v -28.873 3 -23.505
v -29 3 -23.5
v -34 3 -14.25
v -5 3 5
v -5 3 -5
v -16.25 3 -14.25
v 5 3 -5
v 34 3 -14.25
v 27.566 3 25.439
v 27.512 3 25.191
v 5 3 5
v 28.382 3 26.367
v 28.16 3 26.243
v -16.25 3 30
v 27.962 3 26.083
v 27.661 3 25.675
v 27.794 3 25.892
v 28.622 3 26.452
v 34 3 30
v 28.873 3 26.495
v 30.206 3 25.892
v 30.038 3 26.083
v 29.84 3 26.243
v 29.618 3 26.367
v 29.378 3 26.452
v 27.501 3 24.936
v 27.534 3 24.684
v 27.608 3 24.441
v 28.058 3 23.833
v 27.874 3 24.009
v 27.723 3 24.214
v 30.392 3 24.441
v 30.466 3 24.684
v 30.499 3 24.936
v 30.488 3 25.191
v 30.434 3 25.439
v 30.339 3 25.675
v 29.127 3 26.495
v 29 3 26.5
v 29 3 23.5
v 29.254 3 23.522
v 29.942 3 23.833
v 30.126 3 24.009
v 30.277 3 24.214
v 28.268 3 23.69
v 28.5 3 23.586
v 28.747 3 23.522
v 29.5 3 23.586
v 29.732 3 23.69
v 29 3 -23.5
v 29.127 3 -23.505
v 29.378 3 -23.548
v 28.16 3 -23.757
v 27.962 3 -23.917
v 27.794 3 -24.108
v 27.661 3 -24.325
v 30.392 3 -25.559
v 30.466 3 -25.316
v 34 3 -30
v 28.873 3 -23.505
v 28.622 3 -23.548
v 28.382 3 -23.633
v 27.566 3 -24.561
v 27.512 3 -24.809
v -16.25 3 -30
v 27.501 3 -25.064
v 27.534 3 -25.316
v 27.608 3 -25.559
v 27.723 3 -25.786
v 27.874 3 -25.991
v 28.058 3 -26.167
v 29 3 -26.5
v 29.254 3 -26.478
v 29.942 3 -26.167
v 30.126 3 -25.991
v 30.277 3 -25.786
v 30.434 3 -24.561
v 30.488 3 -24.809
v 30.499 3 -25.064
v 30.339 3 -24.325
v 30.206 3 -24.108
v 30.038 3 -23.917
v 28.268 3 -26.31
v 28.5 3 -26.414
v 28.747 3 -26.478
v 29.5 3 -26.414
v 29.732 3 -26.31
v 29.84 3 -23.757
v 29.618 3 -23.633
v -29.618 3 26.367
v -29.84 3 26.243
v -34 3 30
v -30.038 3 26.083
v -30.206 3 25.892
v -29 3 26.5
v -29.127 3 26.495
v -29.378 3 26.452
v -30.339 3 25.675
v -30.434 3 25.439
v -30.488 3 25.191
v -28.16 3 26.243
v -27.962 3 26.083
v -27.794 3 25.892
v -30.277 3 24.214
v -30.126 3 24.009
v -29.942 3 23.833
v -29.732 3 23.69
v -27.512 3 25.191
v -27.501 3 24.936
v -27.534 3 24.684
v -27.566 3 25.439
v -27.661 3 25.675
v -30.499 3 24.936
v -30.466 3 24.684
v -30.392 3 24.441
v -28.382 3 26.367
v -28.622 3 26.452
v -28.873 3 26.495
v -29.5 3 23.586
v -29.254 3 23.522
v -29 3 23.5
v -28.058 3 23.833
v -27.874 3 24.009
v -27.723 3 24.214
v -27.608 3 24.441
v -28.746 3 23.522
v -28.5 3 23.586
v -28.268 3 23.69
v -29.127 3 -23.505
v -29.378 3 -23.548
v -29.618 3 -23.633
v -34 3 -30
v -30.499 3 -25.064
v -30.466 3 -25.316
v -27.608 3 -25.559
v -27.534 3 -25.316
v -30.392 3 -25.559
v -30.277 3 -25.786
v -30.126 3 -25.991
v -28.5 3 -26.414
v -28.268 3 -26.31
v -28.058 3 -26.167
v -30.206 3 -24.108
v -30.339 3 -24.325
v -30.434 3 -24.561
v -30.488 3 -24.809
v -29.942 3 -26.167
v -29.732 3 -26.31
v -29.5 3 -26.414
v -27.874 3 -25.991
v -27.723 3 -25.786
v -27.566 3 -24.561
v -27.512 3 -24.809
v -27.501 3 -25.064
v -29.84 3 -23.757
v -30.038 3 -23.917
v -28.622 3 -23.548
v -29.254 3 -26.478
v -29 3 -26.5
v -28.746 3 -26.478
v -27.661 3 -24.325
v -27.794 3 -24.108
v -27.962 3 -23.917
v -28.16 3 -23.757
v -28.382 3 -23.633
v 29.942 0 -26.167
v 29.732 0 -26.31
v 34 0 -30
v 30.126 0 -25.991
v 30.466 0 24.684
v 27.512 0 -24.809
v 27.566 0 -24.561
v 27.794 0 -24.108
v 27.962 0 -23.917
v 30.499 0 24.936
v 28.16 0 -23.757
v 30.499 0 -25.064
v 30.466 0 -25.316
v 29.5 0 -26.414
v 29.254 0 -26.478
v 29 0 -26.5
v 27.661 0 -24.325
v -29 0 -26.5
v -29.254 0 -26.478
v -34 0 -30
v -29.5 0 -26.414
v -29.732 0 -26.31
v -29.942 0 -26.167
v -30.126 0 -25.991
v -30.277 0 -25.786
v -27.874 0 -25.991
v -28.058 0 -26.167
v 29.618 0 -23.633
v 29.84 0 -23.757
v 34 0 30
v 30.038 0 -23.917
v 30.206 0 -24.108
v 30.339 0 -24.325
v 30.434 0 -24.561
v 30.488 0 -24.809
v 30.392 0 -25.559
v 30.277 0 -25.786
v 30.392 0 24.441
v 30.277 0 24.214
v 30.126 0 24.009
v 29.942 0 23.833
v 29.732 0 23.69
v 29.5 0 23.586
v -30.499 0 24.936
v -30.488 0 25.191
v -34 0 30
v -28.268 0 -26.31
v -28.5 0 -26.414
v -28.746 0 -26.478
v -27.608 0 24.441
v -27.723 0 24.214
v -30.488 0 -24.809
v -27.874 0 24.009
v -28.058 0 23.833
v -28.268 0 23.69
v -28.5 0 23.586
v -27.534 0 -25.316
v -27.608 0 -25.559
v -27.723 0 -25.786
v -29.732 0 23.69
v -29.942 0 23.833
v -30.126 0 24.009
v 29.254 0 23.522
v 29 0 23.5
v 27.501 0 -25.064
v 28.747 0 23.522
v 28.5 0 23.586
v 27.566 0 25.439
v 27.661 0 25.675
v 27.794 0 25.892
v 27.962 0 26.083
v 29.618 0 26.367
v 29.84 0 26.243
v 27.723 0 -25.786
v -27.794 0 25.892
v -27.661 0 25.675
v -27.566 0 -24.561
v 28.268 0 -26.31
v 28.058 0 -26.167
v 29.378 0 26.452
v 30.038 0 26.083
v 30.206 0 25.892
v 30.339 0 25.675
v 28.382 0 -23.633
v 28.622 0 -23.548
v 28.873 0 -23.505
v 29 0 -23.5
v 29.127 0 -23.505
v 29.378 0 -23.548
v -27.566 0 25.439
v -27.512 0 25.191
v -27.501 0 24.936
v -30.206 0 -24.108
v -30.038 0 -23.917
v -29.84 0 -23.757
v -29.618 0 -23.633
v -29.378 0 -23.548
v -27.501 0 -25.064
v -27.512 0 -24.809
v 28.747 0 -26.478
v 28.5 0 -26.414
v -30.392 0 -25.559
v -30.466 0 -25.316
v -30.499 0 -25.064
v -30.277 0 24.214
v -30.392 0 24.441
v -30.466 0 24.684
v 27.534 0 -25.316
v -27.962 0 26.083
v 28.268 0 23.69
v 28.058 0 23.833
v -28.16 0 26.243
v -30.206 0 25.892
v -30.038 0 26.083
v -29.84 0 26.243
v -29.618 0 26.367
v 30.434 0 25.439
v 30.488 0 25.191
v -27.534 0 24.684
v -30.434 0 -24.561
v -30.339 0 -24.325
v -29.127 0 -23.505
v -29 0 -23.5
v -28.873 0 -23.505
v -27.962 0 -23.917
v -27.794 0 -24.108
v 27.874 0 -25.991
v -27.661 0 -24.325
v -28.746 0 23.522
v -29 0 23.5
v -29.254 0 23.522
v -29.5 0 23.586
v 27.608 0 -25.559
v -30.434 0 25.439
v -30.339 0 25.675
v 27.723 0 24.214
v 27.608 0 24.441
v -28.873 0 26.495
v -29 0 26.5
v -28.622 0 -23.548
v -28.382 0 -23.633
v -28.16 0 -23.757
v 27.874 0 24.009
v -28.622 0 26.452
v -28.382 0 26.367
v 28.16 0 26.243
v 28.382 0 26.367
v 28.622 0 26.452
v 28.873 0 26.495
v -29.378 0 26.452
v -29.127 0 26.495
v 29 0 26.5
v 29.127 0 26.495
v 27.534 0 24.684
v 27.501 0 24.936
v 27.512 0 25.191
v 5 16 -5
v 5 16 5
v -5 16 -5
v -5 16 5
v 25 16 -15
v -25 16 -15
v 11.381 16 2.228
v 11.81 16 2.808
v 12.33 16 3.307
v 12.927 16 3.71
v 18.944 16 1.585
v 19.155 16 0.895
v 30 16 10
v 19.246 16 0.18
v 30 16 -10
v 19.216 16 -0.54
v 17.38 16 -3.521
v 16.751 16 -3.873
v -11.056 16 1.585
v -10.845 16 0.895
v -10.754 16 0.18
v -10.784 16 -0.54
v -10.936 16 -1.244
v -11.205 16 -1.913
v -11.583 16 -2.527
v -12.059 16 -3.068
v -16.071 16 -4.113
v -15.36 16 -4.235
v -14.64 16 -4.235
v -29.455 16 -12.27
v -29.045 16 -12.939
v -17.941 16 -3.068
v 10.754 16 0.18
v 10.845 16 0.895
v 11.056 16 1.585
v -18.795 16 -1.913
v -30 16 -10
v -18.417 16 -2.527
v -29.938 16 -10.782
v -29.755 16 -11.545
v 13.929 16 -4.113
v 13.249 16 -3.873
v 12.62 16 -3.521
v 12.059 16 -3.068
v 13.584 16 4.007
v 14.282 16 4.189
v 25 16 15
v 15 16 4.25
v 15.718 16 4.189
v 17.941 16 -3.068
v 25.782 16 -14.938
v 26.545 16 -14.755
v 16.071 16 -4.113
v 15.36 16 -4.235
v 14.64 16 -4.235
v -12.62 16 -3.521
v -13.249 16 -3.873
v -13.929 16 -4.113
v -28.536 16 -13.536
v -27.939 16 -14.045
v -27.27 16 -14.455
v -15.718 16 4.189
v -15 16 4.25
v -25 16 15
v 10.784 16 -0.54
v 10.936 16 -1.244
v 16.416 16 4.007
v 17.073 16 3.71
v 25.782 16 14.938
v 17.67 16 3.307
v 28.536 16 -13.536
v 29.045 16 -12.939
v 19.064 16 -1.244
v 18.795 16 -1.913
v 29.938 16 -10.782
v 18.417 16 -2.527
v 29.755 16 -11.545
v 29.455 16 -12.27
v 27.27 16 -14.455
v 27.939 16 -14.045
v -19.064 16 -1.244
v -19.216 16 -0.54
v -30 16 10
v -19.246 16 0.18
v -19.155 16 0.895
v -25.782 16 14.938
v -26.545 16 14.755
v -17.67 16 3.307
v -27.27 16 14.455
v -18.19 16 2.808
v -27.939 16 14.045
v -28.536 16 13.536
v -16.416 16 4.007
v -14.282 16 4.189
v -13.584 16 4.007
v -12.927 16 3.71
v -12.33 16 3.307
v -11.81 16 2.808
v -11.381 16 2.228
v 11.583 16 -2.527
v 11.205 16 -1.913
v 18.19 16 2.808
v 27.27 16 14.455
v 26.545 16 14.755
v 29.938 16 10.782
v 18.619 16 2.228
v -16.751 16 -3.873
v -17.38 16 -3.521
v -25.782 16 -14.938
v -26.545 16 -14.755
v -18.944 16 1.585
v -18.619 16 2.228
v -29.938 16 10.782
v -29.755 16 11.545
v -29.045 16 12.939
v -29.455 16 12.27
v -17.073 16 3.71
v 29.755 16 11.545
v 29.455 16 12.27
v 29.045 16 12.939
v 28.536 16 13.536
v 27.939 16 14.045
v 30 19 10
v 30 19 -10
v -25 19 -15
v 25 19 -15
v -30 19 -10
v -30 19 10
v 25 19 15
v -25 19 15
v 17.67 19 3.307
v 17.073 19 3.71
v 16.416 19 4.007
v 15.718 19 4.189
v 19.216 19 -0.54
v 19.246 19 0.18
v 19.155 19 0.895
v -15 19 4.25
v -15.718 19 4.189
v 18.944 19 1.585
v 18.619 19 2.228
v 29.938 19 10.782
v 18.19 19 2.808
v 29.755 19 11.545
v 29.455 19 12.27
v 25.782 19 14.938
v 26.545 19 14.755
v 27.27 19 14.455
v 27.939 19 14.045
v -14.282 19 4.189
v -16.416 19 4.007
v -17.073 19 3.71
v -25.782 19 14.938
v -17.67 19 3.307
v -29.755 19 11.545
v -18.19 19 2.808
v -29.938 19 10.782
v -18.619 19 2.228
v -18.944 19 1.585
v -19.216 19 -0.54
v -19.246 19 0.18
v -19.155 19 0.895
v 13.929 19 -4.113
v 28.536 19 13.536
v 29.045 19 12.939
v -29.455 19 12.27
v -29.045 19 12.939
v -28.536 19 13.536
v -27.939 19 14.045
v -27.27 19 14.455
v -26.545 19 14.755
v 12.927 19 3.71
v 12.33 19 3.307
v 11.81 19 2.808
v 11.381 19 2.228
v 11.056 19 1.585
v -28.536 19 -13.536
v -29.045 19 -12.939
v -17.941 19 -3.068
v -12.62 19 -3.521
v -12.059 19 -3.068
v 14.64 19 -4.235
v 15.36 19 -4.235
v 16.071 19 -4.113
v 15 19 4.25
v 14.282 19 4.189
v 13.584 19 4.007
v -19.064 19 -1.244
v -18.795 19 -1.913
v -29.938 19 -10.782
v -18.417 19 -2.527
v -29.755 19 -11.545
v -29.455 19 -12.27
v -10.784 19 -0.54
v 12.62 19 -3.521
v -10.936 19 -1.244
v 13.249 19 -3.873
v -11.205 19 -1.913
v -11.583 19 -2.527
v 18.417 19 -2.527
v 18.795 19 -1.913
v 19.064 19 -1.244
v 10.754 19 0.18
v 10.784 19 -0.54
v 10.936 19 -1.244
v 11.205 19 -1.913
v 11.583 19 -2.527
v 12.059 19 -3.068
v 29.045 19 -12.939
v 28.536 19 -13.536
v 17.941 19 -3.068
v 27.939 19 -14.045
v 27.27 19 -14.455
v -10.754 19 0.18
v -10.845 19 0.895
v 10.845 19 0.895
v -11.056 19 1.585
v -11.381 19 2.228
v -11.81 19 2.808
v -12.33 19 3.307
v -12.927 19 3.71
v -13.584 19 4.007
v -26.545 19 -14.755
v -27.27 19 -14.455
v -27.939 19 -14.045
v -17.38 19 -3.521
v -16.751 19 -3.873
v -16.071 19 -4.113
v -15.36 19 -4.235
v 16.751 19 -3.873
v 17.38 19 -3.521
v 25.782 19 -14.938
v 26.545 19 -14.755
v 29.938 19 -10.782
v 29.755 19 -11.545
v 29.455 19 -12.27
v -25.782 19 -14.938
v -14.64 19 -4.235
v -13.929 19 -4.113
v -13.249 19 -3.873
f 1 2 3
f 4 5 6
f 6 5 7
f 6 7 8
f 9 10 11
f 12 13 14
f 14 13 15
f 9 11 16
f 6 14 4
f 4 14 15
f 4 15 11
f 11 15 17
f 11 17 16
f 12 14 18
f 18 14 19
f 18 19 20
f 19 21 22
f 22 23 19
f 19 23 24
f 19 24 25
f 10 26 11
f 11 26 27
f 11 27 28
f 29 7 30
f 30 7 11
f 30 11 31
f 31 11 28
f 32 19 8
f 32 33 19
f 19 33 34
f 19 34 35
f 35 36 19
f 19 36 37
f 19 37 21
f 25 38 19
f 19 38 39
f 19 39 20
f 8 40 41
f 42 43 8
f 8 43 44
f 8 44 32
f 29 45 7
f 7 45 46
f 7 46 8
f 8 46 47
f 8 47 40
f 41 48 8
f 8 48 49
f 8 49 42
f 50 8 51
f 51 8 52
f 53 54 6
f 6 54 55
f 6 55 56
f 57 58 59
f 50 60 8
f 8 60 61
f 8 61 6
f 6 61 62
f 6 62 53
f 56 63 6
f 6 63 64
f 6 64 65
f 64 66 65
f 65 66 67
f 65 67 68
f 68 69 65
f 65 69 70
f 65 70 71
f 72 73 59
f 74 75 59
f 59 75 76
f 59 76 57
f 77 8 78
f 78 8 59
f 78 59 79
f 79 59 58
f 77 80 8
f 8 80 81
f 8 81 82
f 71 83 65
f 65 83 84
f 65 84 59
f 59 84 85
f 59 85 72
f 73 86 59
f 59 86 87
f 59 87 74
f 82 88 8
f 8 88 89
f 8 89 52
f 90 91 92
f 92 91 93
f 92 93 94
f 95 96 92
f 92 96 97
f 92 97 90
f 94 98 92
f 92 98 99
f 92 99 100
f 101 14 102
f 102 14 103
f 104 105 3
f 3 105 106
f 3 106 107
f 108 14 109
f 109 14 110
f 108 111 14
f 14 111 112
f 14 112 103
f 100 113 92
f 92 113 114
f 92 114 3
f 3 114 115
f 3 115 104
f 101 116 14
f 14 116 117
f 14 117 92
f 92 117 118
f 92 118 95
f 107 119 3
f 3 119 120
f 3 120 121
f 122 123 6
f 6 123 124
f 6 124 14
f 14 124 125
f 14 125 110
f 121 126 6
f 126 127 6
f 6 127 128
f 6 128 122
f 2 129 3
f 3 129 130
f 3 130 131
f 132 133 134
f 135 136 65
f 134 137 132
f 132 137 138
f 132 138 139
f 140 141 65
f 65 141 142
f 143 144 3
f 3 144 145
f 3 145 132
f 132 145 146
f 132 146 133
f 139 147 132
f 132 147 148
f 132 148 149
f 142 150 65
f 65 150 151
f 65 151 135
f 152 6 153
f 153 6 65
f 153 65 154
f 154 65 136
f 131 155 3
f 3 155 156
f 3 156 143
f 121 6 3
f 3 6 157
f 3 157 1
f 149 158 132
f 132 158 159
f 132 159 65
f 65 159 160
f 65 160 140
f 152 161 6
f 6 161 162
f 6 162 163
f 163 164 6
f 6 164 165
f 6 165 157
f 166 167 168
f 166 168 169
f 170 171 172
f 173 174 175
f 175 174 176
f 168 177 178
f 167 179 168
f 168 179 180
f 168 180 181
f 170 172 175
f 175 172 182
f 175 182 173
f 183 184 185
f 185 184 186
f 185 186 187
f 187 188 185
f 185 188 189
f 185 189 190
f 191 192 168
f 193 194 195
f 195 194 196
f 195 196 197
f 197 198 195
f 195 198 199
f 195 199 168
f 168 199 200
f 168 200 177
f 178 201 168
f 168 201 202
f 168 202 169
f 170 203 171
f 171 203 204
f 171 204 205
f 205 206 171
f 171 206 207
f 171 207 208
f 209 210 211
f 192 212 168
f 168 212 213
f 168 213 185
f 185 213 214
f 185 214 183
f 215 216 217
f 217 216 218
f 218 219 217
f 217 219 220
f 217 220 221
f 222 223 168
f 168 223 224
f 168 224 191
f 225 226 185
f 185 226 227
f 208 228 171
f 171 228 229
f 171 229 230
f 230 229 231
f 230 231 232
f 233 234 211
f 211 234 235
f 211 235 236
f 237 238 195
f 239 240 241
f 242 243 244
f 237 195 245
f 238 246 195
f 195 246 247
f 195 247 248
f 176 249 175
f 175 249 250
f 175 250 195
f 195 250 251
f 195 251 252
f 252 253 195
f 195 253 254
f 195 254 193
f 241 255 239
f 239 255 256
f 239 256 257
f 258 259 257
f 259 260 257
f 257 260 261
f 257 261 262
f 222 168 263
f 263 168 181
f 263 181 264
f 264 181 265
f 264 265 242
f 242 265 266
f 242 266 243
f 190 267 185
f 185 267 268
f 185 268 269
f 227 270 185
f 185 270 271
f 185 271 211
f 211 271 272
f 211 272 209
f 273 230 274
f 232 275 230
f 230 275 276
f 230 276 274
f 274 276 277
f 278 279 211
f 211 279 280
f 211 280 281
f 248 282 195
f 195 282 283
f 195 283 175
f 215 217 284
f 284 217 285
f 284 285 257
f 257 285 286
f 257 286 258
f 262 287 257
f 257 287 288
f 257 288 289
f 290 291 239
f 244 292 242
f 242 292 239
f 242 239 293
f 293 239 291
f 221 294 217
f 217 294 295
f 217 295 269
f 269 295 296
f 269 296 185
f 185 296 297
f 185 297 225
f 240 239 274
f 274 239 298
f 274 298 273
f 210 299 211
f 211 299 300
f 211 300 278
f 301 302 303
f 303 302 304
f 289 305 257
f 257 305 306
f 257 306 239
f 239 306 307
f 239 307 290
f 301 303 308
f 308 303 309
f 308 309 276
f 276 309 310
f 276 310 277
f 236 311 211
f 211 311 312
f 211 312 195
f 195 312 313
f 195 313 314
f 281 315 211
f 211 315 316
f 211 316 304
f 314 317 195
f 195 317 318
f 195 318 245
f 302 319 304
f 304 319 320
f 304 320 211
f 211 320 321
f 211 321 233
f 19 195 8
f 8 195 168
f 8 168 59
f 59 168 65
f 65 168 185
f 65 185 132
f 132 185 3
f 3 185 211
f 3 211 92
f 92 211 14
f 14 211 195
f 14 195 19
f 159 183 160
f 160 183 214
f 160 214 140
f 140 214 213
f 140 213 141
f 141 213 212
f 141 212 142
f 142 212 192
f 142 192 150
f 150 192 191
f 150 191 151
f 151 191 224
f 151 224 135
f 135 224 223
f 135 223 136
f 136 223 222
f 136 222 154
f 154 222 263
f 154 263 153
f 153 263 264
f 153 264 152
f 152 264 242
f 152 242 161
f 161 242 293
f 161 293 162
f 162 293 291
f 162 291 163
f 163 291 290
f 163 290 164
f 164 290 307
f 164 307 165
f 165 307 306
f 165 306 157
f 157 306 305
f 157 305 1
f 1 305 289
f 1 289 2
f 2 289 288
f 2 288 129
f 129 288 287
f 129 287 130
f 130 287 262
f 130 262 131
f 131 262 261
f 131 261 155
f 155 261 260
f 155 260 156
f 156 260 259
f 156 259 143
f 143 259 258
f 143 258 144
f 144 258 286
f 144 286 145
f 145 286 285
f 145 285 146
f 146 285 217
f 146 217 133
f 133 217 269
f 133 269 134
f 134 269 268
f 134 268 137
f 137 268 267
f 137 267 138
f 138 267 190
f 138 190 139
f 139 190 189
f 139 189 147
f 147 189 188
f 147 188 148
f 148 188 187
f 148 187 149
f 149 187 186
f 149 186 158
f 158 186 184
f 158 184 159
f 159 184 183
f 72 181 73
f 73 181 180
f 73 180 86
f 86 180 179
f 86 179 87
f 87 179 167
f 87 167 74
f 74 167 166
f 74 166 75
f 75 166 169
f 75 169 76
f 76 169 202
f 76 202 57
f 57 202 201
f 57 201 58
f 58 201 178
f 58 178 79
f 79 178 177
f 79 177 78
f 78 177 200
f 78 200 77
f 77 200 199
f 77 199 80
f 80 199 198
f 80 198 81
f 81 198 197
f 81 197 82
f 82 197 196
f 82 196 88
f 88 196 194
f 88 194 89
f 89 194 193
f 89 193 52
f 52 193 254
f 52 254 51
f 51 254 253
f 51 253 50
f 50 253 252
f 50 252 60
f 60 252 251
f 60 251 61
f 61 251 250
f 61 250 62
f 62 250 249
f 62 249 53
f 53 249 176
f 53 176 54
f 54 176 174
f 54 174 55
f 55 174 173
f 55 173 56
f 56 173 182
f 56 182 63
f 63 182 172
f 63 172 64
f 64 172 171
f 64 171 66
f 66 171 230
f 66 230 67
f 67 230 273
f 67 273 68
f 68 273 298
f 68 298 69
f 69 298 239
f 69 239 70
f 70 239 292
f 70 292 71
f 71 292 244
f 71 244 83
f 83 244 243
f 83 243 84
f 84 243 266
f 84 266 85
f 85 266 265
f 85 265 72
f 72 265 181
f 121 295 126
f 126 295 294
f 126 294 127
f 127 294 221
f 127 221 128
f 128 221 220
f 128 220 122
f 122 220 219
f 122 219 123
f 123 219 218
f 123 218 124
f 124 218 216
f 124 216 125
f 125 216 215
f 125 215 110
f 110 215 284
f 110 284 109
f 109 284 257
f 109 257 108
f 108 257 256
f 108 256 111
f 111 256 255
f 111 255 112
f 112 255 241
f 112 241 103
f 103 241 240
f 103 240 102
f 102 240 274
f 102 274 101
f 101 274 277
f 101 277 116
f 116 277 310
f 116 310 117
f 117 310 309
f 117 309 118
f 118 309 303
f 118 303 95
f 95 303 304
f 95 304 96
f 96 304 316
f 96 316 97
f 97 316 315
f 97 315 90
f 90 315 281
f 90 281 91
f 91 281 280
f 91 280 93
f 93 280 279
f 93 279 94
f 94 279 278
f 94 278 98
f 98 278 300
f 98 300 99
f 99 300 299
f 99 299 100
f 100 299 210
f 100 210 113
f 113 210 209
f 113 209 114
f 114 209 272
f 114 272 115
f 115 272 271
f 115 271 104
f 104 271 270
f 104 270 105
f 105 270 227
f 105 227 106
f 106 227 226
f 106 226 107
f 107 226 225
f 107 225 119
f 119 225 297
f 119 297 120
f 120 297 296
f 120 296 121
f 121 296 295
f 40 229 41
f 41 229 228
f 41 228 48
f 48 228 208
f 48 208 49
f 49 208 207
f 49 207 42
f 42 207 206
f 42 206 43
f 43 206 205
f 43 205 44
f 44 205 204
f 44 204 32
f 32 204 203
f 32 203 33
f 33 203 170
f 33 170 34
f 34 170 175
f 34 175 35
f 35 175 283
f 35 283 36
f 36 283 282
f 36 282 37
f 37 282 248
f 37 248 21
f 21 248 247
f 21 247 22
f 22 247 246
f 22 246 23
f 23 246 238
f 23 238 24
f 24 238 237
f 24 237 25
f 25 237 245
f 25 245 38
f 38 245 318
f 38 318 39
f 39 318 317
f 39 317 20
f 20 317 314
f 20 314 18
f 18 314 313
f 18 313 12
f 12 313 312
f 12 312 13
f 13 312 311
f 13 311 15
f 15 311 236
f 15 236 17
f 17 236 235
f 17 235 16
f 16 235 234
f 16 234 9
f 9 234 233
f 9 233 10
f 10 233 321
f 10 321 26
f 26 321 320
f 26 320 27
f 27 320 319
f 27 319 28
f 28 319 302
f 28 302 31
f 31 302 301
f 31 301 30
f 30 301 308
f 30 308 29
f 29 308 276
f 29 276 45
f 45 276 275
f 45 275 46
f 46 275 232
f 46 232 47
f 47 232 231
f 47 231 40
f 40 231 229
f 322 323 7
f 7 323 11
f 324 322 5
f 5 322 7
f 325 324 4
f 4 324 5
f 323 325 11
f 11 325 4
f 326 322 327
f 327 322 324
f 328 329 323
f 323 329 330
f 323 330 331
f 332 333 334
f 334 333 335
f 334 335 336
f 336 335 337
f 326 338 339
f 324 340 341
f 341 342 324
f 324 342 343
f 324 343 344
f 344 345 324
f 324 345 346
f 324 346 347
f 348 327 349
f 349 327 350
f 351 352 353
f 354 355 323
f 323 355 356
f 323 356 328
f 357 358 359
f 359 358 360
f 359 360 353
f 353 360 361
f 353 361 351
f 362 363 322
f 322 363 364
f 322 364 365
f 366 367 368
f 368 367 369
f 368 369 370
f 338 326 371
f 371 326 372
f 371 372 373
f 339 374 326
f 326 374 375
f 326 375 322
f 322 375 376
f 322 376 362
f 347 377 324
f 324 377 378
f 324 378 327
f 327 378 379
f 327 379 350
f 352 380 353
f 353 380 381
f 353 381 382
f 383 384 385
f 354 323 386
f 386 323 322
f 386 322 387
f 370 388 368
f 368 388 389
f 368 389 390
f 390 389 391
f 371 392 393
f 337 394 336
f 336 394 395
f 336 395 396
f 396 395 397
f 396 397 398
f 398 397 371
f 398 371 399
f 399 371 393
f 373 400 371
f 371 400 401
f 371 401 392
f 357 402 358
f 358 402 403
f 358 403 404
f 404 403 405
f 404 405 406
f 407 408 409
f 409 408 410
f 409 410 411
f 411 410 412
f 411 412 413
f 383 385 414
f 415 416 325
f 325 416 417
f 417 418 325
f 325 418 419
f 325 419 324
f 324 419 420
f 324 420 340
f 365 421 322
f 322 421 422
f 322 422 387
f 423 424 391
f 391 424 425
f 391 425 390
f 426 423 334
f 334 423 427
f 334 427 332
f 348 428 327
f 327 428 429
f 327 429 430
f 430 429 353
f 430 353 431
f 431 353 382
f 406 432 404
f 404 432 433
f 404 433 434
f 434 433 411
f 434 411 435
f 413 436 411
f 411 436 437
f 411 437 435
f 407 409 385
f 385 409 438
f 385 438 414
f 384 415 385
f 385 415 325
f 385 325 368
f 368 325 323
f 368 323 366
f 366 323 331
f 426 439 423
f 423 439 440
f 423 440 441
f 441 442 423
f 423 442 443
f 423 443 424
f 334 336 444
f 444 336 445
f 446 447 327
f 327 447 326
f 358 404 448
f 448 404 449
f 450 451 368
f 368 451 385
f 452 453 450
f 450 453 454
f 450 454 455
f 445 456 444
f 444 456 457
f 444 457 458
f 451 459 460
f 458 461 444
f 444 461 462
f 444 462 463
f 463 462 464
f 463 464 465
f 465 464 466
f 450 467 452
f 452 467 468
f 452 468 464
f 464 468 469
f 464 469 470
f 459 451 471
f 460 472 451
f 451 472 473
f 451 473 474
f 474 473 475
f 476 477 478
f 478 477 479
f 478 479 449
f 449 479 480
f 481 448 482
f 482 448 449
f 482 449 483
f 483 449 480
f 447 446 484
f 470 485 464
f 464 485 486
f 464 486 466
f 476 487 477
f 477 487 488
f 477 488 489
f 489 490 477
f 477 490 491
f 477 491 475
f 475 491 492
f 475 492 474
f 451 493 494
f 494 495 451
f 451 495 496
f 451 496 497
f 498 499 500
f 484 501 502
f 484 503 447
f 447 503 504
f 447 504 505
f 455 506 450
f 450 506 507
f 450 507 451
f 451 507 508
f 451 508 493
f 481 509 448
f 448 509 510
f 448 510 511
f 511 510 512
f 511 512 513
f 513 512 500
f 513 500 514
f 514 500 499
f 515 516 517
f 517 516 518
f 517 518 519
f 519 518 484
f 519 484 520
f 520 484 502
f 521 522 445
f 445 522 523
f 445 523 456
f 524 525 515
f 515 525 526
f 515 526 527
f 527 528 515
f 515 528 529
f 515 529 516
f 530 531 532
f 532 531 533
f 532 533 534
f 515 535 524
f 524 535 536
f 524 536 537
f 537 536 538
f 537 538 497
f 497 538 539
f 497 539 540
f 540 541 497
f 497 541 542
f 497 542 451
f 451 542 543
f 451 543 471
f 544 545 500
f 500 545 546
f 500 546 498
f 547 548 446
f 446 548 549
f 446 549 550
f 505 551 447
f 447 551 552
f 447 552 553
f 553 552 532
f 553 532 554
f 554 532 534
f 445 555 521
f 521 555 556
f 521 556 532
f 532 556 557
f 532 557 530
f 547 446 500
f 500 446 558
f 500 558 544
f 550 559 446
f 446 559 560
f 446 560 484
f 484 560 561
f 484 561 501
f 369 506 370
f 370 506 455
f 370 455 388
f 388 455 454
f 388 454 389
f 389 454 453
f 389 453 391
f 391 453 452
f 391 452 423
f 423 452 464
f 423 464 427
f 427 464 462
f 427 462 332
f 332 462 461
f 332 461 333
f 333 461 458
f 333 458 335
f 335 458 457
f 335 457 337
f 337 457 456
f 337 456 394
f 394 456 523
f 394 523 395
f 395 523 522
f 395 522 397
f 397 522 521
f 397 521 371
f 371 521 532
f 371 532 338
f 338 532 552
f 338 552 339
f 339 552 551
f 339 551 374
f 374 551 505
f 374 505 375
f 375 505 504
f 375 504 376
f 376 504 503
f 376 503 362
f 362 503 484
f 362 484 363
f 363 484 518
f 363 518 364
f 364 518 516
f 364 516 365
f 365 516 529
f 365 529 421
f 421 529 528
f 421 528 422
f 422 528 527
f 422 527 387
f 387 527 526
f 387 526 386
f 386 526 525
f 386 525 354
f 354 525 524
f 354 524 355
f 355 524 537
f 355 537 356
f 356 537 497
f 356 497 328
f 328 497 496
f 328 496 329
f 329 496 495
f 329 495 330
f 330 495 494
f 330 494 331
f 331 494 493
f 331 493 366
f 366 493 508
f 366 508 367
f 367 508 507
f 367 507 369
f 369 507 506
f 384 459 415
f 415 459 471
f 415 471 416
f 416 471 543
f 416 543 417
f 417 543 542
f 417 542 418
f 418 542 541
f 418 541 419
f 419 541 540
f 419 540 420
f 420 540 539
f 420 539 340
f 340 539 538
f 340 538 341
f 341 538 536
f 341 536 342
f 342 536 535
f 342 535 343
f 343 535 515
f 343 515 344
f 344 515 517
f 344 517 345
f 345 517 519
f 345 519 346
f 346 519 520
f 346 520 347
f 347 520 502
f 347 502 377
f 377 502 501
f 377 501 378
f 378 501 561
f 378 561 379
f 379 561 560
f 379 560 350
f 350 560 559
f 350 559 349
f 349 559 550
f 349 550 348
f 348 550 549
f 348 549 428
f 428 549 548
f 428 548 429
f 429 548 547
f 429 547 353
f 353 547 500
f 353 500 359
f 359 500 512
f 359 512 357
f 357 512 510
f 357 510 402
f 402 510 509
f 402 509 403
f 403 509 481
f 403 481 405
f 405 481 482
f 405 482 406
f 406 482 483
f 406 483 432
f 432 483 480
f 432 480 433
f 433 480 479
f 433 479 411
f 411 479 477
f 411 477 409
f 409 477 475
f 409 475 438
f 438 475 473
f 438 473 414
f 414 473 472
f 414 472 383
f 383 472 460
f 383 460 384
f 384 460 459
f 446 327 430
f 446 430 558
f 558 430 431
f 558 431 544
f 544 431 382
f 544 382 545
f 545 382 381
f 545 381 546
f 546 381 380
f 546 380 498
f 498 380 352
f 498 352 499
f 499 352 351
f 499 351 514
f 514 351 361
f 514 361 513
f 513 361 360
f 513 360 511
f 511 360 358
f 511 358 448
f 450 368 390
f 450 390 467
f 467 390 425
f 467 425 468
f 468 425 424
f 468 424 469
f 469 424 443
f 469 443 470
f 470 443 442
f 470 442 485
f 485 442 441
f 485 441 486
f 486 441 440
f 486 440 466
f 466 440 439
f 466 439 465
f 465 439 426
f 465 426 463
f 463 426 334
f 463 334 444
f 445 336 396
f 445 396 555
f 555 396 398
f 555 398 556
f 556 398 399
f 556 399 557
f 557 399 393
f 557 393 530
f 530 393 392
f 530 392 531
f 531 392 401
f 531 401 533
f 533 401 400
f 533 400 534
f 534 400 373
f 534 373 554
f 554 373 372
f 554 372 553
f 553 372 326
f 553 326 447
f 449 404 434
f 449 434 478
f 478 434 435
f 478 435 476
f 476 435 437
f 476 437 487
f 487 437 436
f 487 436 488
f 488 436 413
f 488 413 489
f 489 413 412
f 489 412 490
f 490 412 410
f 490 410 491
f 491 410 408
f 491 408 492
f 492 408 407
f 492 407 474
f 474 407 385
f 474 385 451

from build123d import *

# Parameters (mm, degrees)
CROQUIS1_W              = 68
CROQUIS1_H              = 60
CROQUIS1_R              = 1.5
SALIENTE_EXTRUIR2_DEPTH = 3
CROQUIS2_W              = 5
CROQUIS2_H              = 10
SALIENTE_EXTRUIR3_DEPTH = 13
CORTAR_EXTRUIR1_DEPTH   = 13
CROQUIS4_R              = 1.5
CORTAR_EXTRUIR2_DEPTH   = 13
CROQUIS6_W              = 0.75
CROQUIS6_H              = 19.11
CROQUIS6_H_2            = 18.27
CORTAR_EXTRUIR3_DEPTH   = 10
CROQUIS7_W              = 7.48396125
CROQUIS7_H              = 18.688270588
CORTAR_EXTRUIR4_DEPTH   = 10
CROQUIS8_W              = 10
CROQUIS8_H              = 10
SALIENTE_EXTRUIR4_DEPTH = 13
CROQUIS9_W              = 60
CROQUIS9_H              = 30
SALIENTE_EXTRUIR5_DEPTH = 3
CROQUIS10_R             = 4.25
CORTAR_EXTRUIR5_DEPTH   = 3
REDONDEO1_R             = 5


with BuildPart() as part:
    # Croquis1 → Saliente-Extruir2 (new body)
    with BuildSketch(Plane(origin=(0, 0, 0), x_dir=(1, 0, 0), z_dir=(0, 1, 0))):
        Rectangle(CROQUIS1_W, CROQUIS1_H)
        with Locations(Location((-29, 25, 0), (0, 0, 270))):
            Circle(CROQUIS1_R, mode=Mode.SUBTRACT)
        with Locations(Location((29, 25, 0), (0, 0, 270))):
            Circle(CROQUIS1_R, mode=Mode.SUBTRACT)
        with Locations(Location((-29, -25, 0), (0, 0, 270))):
            Circle(CROQUIS1_R, mode=Mode.SUBTRACT)
        with Locations(Location((29, -25, 0), (0, 0, 270))):
            Circle(CROQUIS1_R, mode=Mode.SUBTRACT)
    extrude(amount=SALIENTE_EXTRUIR2_DEPTH)

    # Croquis2 → Saliente-Extruir3 (add)
    with BuildSketch(Plane(origin=(0, 3, 0), x_dir=(1, 0, 0), z_dir=(0, 1, 0))):
        Rectangle(CROQUIS2_W, CROQUIS2_H)
    extrude(amount=SALIENTE_EXTRUIR3_DEPTH)

    # Croquis3 → Cortar-Extruir1 (cut)
    with BuildSketch(Plane(origin=(2.5, 0, 0), x_dir=(0, 0, -1), z_dir=(1, 0, 0))):
        with BuildLine():
            Line((-5, 16), (-5, 11))
            ThreePointArc((-5, 11), (-3.535533906, 14.535533906), (0, 16))
            Line((0, 16), (-5, 16))
        make_face()
        with BuildLine():
            ThreePointArc((0, 16), (3.535533906, 14.535533906), (5, 11))
            Line((5, 11), (5, 16))
            Line((5, 16), (0, 16))
        make_face()
    extrude(amount=-CORTAR_EXTRUIR1_DEPTH, mode=Mode.SUBTRACT)

    # Croquis4 → Cortar-Extruir2 (cut)
    with BuildSketch(Plane(origin=(2.5, 0, 0), x_dir=(0, 0, -1), z_dir=(1, 0, 0))):
        with Locations((0, 11)):
            Circle(CROQUIS4_R)
    extrude(amount=-CORTAR_EXTRUIR2_DEPTH, mode=Mode.SUBTRACT)

    # Croquis6 → Cortar-Extruir3 (cut)
    with BuildSketch(Plane(origin=(0, 0, -5), x_dir=(-1, 0, 0), z_dir=(0, 0, -1))):
        with Locations((-2.125, 12.555)):
            Rectangle(CROQUIS6_W, CROQUIS6_H)
        with Locations((2.125, 12.135)):
            Rectangle(CROQUIS6_W, CROQUIS6_H_2)
    extrude(amount=-CORTAR_EXTRUIR3_DEPTH, mode=Mode.SUBTRACT)

    # Croquis7 → Cortar-Extruir4 (cut)
    with BuildSketch(Plane(origin=(0, 0, -5), x_dir=(-1, 0, 0), z_dir=(0, 0, -1))):
        with Locations((1.991980625, 12.344135294)):
            Rectangle(CROQUIS7_W, CROQUIS7_H)
    extrude(amount=-CORTAR_EXTRUIR4_DEPTH, mode=Mode.SUBTRACT)

    # Croquis8 → Saliente-Extruir4 (add)
    with BuildSketch(Plane(origin=(0, 3, 0), x_dir=(1, 0, 0), z_dir=(0, 1, 0))):
        Rectangle(CROQUIS8_W, CROQUIS8_H)
    extrude(amount=SALIENTE_EXTRUIR4_DEPTH)

    # Croquis9 → Saliente-Extruir5 (add)
    with BuildSketch(Plane(origin=(0, 16, 0), x_dir=(1, 0, 0), z_dir=(0, 1, 0))):
        Rectangle(CROQUIS9_W, CROQUIS9_H)
    extrude(amount=SALIENTE_EXTRUIR5_DEPTH)

    # Croquis10 → Cortar-Extruir5 (cut)
    with BuildSketch(Plane(origin=(0, 19, 0), x_dir=(1, 0, 0), z_dir=(0, 1, 0))):
        with Locations(Location((-15, 0, 0), (0, 0, 270))):
            Circle(CROQUIS10_R)
        with Locations(Location((15, 0, 0), (0, 0, 270))):
            Circle(CROQUIS10_R)
    extrude(amount=-CORTAR_EXTRUIR5_DEPTH, mode=Mode.SUBTRACT)

    # Redondeo1
    redondeo1_edges = [part.edges().sort_by_distance(p)[0] for p in [
        (30, 17.5, 15),
        (30, 17.5, -15),
        (-30, 17.5, -15),
        (-30, 17.5, 15),
    ]]
    fillet(redondeo1_edges, radius=REDONDEO1_R)


solid = part.part
